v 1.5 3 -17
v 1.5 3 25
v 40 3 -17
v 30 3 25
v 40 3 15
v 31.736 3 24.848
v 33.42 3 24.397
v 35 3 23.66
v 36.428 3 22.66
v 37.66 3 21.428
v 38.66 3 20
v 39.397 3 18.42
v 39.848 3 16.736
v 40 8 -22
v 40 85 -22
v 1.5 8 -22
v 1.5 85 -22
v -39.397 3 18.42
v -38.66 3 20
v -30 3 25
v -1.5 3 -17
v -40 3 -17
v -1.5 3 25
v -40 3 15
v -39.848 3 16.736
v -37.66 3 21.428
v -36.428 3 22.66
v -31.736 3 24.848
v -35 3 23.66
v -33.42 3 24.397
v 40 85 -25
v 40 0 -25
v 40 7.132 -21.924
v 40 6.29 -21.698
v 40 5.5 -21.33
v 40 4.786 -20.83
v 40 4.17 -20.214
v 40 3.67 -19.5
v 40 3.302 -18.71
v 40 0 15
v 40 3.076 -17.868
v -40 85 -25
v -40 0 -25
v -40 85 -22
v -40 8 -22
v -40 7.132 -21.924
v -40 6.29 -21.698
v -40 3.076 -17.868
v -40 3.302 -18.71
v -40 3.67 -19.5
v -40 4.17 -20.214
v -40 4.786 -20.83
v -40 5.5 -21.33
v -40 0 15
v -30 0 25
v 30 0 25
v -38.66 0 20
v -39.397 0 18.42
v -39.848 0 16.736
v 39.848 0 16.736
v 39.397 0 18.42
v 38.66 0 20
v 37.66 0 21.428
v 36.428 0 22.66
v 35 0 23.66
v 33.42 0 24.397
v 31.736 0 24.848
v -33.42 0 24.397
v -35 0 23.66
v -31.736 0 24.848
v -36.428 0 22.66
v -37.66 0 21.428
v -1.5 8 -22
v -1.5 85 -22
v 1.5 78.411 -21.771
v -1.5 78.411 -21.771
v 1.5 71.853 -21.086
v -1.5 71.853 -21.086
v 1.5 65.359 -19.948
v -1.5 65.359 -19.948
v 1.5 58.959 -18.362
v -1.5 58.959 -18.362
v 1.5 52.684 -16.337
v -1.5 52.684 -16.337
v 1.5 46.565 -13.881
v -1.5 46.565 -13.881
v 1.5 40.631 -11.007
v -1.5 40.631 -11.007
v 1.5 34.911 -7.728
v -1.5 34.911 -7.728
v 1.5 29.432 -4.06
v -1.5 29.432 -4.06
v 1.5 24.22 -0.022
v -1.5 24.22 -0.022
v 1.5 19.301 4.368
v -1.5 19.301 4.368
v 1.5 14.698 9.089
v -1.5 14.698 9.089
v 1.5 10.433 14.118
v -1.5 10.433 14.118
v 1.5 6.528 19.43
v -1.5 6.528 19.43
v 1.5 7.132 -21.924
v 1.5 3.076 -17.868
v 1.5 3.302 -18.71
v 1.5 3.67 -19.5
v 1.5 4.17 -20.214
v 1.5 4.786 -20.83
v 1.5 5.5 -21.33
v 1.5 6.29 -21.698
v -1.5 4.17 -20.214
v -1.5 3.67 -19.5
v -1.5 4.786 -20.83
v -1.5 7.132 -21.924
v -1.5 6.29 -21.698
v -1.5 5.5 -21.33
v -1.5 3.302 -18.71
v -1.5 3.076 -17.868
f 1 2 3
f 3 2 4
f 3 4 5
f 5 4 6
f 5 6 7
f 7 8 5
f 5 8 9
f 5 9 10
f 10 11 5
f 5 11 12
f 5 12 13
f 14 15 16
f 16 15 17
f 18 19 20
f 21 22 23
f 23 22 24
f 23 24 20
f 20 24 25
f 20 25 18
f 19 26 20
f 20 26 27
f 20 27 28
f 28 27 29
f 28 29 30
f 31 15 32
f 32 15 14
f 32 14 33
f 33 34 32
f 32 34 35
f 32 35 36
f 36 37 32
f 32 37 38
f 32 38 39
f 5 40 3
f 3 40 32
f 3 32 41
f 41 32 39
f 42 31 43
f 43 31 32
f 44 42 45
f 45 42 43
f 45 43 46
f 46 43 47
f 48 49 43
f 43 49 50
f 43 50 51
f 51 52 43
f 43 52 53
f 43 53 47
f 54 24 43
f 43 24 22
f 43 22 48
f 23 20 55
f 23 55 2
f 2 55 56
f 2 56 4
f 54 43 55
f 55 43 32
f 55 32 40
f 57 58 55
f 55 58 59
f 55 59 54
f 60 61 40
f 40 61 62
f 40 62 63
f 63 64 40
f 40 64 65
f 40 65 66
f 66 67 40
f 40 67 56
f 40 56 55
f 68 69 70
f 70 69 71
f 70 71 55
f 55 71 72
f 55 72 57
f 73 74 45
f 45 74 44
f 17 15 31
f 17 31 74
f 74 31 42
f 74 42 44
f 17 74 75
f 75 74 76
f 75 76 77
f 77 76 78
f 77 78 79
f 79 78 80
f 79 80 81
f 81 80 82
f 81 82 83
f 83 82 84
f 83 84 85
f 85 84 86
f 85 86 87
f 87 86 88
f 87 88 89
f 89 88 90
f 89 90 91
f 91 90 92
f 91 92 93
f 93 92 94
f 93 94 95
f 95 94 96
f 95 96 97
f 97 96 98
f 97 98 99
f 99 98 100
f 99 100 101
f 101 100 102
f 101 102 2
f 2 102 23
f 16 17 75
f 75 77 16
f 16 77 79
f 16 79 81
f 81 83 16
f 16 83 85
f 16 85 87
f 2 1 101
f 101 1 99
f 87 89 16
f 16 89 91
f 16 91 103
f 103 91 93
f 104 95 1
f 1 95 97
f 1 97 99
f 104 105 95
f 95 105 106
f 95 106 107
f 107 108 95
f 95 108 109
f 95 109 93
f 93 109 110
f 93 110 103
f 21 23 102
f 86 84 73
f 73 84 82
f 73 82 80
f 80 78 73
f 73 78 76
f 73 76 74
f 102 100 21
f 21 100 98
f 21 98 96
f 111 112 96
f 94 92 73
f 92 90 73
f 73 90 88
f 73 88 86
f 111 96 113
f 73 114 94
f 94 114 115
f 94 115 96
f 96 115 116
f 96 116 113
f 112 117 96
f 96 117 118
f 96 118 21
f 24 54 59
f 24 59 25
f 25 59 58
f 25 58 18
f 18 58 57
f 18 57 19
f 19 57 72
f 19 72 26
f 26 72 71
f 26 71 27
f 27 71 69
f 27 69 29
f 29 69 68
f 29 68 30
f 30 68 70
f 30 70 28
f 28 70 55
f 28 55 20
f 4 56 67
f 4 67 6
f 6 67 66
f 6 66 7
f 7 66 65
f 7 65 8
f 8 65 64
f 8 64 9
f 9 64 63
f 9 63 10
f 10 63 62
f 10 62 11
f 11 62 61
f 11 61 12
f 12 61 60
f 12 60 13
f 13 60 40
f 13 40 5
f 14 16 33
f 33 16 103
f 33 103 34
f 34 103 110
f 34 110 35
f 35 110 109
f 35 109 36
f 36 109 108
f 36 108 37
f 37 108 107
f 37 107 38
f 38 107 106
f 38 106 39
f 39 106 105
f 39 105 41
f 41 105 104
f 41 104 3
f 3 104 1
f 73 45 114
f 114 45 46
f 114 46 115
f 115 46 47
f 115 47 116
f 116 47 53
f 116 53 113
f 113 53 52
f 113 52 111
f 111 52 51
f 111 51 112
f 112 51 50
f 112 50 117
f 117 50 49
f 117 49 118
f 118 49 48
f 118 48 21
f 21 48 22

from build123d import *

# Parameters (mm, degrees)
SKETCH1_W           = 80
SKETCH1_H           = 50
BOSS_EXTRUDE1_DEPTH = 3
SKETCH2_W           = 80
SKETCH2_H           = 3
BOSS_EXTRUDE2_DEPTH = 82
BOSS_EXTRUDE3_DEPTH = 1.5
FILLET1_R           = 10
FILLET2_R           = 5


with BuildPart() as part:
    # Sketch1 → Boss-Extrude1 (new body)
    with BuildSketch(Plane(origin=(0, 0, 0), x_dir=(1, 0, 0), z_dir=(0, 1, 0))):
        Rectangle(SKETCH1_W, SKETCH1_H)
    extrude(amount=BOSS_EXTRUDE1_DEPTH)

    # Sketch2 → Boss-Extrude2 (add)
    with BuildSketch(Plane(origin=(0, 3, 0), x_dir=(1, 0, 0), z_dir=(0, 1, 0))):
        with Locations((0, 23.5)):
            Rectangle(SKETCH2_W, SKETCH2_H)
    extrude(amount=BOSS_EXTRUDE2_DEPTH)

    # Sketch3 → Boss-Extrude3 (add, symmetric)
    with BuildSketch(Plane(origin=(0, 0, 0), x_dir=(0, 0, -1), z_dir=(1, 0, 0))):
        with BuildLine():
            Line((22, 85), (22, 3))
            Line((22, 3), (-25, 3))
            ThreePointArc((-25, 3), (9.416947126, 37.742725428), (22, 85))
        make_face()
    extrude(amount=BOSS_EXTRUDE3_DEPTH, both=True)

    # Fillet1
    fillet1_edges = [part.edges().sort_by_distance(p)[0] for p in [
        (40, 1.5, 25),
        (-40, 1.5, 25),
    ]]
    fillet(fillet1_edges, radius=FILLET1_R)

    # Fillet2
    fillet2_edges = [part.edges().sort_by_distance(p)[0] for p in [
        (-20.75, 3, -22),
        (20.75, 3, -22),
    ]]
    fillet(fillet2_edges, radius=FILLET2_R)


solid = part.part
